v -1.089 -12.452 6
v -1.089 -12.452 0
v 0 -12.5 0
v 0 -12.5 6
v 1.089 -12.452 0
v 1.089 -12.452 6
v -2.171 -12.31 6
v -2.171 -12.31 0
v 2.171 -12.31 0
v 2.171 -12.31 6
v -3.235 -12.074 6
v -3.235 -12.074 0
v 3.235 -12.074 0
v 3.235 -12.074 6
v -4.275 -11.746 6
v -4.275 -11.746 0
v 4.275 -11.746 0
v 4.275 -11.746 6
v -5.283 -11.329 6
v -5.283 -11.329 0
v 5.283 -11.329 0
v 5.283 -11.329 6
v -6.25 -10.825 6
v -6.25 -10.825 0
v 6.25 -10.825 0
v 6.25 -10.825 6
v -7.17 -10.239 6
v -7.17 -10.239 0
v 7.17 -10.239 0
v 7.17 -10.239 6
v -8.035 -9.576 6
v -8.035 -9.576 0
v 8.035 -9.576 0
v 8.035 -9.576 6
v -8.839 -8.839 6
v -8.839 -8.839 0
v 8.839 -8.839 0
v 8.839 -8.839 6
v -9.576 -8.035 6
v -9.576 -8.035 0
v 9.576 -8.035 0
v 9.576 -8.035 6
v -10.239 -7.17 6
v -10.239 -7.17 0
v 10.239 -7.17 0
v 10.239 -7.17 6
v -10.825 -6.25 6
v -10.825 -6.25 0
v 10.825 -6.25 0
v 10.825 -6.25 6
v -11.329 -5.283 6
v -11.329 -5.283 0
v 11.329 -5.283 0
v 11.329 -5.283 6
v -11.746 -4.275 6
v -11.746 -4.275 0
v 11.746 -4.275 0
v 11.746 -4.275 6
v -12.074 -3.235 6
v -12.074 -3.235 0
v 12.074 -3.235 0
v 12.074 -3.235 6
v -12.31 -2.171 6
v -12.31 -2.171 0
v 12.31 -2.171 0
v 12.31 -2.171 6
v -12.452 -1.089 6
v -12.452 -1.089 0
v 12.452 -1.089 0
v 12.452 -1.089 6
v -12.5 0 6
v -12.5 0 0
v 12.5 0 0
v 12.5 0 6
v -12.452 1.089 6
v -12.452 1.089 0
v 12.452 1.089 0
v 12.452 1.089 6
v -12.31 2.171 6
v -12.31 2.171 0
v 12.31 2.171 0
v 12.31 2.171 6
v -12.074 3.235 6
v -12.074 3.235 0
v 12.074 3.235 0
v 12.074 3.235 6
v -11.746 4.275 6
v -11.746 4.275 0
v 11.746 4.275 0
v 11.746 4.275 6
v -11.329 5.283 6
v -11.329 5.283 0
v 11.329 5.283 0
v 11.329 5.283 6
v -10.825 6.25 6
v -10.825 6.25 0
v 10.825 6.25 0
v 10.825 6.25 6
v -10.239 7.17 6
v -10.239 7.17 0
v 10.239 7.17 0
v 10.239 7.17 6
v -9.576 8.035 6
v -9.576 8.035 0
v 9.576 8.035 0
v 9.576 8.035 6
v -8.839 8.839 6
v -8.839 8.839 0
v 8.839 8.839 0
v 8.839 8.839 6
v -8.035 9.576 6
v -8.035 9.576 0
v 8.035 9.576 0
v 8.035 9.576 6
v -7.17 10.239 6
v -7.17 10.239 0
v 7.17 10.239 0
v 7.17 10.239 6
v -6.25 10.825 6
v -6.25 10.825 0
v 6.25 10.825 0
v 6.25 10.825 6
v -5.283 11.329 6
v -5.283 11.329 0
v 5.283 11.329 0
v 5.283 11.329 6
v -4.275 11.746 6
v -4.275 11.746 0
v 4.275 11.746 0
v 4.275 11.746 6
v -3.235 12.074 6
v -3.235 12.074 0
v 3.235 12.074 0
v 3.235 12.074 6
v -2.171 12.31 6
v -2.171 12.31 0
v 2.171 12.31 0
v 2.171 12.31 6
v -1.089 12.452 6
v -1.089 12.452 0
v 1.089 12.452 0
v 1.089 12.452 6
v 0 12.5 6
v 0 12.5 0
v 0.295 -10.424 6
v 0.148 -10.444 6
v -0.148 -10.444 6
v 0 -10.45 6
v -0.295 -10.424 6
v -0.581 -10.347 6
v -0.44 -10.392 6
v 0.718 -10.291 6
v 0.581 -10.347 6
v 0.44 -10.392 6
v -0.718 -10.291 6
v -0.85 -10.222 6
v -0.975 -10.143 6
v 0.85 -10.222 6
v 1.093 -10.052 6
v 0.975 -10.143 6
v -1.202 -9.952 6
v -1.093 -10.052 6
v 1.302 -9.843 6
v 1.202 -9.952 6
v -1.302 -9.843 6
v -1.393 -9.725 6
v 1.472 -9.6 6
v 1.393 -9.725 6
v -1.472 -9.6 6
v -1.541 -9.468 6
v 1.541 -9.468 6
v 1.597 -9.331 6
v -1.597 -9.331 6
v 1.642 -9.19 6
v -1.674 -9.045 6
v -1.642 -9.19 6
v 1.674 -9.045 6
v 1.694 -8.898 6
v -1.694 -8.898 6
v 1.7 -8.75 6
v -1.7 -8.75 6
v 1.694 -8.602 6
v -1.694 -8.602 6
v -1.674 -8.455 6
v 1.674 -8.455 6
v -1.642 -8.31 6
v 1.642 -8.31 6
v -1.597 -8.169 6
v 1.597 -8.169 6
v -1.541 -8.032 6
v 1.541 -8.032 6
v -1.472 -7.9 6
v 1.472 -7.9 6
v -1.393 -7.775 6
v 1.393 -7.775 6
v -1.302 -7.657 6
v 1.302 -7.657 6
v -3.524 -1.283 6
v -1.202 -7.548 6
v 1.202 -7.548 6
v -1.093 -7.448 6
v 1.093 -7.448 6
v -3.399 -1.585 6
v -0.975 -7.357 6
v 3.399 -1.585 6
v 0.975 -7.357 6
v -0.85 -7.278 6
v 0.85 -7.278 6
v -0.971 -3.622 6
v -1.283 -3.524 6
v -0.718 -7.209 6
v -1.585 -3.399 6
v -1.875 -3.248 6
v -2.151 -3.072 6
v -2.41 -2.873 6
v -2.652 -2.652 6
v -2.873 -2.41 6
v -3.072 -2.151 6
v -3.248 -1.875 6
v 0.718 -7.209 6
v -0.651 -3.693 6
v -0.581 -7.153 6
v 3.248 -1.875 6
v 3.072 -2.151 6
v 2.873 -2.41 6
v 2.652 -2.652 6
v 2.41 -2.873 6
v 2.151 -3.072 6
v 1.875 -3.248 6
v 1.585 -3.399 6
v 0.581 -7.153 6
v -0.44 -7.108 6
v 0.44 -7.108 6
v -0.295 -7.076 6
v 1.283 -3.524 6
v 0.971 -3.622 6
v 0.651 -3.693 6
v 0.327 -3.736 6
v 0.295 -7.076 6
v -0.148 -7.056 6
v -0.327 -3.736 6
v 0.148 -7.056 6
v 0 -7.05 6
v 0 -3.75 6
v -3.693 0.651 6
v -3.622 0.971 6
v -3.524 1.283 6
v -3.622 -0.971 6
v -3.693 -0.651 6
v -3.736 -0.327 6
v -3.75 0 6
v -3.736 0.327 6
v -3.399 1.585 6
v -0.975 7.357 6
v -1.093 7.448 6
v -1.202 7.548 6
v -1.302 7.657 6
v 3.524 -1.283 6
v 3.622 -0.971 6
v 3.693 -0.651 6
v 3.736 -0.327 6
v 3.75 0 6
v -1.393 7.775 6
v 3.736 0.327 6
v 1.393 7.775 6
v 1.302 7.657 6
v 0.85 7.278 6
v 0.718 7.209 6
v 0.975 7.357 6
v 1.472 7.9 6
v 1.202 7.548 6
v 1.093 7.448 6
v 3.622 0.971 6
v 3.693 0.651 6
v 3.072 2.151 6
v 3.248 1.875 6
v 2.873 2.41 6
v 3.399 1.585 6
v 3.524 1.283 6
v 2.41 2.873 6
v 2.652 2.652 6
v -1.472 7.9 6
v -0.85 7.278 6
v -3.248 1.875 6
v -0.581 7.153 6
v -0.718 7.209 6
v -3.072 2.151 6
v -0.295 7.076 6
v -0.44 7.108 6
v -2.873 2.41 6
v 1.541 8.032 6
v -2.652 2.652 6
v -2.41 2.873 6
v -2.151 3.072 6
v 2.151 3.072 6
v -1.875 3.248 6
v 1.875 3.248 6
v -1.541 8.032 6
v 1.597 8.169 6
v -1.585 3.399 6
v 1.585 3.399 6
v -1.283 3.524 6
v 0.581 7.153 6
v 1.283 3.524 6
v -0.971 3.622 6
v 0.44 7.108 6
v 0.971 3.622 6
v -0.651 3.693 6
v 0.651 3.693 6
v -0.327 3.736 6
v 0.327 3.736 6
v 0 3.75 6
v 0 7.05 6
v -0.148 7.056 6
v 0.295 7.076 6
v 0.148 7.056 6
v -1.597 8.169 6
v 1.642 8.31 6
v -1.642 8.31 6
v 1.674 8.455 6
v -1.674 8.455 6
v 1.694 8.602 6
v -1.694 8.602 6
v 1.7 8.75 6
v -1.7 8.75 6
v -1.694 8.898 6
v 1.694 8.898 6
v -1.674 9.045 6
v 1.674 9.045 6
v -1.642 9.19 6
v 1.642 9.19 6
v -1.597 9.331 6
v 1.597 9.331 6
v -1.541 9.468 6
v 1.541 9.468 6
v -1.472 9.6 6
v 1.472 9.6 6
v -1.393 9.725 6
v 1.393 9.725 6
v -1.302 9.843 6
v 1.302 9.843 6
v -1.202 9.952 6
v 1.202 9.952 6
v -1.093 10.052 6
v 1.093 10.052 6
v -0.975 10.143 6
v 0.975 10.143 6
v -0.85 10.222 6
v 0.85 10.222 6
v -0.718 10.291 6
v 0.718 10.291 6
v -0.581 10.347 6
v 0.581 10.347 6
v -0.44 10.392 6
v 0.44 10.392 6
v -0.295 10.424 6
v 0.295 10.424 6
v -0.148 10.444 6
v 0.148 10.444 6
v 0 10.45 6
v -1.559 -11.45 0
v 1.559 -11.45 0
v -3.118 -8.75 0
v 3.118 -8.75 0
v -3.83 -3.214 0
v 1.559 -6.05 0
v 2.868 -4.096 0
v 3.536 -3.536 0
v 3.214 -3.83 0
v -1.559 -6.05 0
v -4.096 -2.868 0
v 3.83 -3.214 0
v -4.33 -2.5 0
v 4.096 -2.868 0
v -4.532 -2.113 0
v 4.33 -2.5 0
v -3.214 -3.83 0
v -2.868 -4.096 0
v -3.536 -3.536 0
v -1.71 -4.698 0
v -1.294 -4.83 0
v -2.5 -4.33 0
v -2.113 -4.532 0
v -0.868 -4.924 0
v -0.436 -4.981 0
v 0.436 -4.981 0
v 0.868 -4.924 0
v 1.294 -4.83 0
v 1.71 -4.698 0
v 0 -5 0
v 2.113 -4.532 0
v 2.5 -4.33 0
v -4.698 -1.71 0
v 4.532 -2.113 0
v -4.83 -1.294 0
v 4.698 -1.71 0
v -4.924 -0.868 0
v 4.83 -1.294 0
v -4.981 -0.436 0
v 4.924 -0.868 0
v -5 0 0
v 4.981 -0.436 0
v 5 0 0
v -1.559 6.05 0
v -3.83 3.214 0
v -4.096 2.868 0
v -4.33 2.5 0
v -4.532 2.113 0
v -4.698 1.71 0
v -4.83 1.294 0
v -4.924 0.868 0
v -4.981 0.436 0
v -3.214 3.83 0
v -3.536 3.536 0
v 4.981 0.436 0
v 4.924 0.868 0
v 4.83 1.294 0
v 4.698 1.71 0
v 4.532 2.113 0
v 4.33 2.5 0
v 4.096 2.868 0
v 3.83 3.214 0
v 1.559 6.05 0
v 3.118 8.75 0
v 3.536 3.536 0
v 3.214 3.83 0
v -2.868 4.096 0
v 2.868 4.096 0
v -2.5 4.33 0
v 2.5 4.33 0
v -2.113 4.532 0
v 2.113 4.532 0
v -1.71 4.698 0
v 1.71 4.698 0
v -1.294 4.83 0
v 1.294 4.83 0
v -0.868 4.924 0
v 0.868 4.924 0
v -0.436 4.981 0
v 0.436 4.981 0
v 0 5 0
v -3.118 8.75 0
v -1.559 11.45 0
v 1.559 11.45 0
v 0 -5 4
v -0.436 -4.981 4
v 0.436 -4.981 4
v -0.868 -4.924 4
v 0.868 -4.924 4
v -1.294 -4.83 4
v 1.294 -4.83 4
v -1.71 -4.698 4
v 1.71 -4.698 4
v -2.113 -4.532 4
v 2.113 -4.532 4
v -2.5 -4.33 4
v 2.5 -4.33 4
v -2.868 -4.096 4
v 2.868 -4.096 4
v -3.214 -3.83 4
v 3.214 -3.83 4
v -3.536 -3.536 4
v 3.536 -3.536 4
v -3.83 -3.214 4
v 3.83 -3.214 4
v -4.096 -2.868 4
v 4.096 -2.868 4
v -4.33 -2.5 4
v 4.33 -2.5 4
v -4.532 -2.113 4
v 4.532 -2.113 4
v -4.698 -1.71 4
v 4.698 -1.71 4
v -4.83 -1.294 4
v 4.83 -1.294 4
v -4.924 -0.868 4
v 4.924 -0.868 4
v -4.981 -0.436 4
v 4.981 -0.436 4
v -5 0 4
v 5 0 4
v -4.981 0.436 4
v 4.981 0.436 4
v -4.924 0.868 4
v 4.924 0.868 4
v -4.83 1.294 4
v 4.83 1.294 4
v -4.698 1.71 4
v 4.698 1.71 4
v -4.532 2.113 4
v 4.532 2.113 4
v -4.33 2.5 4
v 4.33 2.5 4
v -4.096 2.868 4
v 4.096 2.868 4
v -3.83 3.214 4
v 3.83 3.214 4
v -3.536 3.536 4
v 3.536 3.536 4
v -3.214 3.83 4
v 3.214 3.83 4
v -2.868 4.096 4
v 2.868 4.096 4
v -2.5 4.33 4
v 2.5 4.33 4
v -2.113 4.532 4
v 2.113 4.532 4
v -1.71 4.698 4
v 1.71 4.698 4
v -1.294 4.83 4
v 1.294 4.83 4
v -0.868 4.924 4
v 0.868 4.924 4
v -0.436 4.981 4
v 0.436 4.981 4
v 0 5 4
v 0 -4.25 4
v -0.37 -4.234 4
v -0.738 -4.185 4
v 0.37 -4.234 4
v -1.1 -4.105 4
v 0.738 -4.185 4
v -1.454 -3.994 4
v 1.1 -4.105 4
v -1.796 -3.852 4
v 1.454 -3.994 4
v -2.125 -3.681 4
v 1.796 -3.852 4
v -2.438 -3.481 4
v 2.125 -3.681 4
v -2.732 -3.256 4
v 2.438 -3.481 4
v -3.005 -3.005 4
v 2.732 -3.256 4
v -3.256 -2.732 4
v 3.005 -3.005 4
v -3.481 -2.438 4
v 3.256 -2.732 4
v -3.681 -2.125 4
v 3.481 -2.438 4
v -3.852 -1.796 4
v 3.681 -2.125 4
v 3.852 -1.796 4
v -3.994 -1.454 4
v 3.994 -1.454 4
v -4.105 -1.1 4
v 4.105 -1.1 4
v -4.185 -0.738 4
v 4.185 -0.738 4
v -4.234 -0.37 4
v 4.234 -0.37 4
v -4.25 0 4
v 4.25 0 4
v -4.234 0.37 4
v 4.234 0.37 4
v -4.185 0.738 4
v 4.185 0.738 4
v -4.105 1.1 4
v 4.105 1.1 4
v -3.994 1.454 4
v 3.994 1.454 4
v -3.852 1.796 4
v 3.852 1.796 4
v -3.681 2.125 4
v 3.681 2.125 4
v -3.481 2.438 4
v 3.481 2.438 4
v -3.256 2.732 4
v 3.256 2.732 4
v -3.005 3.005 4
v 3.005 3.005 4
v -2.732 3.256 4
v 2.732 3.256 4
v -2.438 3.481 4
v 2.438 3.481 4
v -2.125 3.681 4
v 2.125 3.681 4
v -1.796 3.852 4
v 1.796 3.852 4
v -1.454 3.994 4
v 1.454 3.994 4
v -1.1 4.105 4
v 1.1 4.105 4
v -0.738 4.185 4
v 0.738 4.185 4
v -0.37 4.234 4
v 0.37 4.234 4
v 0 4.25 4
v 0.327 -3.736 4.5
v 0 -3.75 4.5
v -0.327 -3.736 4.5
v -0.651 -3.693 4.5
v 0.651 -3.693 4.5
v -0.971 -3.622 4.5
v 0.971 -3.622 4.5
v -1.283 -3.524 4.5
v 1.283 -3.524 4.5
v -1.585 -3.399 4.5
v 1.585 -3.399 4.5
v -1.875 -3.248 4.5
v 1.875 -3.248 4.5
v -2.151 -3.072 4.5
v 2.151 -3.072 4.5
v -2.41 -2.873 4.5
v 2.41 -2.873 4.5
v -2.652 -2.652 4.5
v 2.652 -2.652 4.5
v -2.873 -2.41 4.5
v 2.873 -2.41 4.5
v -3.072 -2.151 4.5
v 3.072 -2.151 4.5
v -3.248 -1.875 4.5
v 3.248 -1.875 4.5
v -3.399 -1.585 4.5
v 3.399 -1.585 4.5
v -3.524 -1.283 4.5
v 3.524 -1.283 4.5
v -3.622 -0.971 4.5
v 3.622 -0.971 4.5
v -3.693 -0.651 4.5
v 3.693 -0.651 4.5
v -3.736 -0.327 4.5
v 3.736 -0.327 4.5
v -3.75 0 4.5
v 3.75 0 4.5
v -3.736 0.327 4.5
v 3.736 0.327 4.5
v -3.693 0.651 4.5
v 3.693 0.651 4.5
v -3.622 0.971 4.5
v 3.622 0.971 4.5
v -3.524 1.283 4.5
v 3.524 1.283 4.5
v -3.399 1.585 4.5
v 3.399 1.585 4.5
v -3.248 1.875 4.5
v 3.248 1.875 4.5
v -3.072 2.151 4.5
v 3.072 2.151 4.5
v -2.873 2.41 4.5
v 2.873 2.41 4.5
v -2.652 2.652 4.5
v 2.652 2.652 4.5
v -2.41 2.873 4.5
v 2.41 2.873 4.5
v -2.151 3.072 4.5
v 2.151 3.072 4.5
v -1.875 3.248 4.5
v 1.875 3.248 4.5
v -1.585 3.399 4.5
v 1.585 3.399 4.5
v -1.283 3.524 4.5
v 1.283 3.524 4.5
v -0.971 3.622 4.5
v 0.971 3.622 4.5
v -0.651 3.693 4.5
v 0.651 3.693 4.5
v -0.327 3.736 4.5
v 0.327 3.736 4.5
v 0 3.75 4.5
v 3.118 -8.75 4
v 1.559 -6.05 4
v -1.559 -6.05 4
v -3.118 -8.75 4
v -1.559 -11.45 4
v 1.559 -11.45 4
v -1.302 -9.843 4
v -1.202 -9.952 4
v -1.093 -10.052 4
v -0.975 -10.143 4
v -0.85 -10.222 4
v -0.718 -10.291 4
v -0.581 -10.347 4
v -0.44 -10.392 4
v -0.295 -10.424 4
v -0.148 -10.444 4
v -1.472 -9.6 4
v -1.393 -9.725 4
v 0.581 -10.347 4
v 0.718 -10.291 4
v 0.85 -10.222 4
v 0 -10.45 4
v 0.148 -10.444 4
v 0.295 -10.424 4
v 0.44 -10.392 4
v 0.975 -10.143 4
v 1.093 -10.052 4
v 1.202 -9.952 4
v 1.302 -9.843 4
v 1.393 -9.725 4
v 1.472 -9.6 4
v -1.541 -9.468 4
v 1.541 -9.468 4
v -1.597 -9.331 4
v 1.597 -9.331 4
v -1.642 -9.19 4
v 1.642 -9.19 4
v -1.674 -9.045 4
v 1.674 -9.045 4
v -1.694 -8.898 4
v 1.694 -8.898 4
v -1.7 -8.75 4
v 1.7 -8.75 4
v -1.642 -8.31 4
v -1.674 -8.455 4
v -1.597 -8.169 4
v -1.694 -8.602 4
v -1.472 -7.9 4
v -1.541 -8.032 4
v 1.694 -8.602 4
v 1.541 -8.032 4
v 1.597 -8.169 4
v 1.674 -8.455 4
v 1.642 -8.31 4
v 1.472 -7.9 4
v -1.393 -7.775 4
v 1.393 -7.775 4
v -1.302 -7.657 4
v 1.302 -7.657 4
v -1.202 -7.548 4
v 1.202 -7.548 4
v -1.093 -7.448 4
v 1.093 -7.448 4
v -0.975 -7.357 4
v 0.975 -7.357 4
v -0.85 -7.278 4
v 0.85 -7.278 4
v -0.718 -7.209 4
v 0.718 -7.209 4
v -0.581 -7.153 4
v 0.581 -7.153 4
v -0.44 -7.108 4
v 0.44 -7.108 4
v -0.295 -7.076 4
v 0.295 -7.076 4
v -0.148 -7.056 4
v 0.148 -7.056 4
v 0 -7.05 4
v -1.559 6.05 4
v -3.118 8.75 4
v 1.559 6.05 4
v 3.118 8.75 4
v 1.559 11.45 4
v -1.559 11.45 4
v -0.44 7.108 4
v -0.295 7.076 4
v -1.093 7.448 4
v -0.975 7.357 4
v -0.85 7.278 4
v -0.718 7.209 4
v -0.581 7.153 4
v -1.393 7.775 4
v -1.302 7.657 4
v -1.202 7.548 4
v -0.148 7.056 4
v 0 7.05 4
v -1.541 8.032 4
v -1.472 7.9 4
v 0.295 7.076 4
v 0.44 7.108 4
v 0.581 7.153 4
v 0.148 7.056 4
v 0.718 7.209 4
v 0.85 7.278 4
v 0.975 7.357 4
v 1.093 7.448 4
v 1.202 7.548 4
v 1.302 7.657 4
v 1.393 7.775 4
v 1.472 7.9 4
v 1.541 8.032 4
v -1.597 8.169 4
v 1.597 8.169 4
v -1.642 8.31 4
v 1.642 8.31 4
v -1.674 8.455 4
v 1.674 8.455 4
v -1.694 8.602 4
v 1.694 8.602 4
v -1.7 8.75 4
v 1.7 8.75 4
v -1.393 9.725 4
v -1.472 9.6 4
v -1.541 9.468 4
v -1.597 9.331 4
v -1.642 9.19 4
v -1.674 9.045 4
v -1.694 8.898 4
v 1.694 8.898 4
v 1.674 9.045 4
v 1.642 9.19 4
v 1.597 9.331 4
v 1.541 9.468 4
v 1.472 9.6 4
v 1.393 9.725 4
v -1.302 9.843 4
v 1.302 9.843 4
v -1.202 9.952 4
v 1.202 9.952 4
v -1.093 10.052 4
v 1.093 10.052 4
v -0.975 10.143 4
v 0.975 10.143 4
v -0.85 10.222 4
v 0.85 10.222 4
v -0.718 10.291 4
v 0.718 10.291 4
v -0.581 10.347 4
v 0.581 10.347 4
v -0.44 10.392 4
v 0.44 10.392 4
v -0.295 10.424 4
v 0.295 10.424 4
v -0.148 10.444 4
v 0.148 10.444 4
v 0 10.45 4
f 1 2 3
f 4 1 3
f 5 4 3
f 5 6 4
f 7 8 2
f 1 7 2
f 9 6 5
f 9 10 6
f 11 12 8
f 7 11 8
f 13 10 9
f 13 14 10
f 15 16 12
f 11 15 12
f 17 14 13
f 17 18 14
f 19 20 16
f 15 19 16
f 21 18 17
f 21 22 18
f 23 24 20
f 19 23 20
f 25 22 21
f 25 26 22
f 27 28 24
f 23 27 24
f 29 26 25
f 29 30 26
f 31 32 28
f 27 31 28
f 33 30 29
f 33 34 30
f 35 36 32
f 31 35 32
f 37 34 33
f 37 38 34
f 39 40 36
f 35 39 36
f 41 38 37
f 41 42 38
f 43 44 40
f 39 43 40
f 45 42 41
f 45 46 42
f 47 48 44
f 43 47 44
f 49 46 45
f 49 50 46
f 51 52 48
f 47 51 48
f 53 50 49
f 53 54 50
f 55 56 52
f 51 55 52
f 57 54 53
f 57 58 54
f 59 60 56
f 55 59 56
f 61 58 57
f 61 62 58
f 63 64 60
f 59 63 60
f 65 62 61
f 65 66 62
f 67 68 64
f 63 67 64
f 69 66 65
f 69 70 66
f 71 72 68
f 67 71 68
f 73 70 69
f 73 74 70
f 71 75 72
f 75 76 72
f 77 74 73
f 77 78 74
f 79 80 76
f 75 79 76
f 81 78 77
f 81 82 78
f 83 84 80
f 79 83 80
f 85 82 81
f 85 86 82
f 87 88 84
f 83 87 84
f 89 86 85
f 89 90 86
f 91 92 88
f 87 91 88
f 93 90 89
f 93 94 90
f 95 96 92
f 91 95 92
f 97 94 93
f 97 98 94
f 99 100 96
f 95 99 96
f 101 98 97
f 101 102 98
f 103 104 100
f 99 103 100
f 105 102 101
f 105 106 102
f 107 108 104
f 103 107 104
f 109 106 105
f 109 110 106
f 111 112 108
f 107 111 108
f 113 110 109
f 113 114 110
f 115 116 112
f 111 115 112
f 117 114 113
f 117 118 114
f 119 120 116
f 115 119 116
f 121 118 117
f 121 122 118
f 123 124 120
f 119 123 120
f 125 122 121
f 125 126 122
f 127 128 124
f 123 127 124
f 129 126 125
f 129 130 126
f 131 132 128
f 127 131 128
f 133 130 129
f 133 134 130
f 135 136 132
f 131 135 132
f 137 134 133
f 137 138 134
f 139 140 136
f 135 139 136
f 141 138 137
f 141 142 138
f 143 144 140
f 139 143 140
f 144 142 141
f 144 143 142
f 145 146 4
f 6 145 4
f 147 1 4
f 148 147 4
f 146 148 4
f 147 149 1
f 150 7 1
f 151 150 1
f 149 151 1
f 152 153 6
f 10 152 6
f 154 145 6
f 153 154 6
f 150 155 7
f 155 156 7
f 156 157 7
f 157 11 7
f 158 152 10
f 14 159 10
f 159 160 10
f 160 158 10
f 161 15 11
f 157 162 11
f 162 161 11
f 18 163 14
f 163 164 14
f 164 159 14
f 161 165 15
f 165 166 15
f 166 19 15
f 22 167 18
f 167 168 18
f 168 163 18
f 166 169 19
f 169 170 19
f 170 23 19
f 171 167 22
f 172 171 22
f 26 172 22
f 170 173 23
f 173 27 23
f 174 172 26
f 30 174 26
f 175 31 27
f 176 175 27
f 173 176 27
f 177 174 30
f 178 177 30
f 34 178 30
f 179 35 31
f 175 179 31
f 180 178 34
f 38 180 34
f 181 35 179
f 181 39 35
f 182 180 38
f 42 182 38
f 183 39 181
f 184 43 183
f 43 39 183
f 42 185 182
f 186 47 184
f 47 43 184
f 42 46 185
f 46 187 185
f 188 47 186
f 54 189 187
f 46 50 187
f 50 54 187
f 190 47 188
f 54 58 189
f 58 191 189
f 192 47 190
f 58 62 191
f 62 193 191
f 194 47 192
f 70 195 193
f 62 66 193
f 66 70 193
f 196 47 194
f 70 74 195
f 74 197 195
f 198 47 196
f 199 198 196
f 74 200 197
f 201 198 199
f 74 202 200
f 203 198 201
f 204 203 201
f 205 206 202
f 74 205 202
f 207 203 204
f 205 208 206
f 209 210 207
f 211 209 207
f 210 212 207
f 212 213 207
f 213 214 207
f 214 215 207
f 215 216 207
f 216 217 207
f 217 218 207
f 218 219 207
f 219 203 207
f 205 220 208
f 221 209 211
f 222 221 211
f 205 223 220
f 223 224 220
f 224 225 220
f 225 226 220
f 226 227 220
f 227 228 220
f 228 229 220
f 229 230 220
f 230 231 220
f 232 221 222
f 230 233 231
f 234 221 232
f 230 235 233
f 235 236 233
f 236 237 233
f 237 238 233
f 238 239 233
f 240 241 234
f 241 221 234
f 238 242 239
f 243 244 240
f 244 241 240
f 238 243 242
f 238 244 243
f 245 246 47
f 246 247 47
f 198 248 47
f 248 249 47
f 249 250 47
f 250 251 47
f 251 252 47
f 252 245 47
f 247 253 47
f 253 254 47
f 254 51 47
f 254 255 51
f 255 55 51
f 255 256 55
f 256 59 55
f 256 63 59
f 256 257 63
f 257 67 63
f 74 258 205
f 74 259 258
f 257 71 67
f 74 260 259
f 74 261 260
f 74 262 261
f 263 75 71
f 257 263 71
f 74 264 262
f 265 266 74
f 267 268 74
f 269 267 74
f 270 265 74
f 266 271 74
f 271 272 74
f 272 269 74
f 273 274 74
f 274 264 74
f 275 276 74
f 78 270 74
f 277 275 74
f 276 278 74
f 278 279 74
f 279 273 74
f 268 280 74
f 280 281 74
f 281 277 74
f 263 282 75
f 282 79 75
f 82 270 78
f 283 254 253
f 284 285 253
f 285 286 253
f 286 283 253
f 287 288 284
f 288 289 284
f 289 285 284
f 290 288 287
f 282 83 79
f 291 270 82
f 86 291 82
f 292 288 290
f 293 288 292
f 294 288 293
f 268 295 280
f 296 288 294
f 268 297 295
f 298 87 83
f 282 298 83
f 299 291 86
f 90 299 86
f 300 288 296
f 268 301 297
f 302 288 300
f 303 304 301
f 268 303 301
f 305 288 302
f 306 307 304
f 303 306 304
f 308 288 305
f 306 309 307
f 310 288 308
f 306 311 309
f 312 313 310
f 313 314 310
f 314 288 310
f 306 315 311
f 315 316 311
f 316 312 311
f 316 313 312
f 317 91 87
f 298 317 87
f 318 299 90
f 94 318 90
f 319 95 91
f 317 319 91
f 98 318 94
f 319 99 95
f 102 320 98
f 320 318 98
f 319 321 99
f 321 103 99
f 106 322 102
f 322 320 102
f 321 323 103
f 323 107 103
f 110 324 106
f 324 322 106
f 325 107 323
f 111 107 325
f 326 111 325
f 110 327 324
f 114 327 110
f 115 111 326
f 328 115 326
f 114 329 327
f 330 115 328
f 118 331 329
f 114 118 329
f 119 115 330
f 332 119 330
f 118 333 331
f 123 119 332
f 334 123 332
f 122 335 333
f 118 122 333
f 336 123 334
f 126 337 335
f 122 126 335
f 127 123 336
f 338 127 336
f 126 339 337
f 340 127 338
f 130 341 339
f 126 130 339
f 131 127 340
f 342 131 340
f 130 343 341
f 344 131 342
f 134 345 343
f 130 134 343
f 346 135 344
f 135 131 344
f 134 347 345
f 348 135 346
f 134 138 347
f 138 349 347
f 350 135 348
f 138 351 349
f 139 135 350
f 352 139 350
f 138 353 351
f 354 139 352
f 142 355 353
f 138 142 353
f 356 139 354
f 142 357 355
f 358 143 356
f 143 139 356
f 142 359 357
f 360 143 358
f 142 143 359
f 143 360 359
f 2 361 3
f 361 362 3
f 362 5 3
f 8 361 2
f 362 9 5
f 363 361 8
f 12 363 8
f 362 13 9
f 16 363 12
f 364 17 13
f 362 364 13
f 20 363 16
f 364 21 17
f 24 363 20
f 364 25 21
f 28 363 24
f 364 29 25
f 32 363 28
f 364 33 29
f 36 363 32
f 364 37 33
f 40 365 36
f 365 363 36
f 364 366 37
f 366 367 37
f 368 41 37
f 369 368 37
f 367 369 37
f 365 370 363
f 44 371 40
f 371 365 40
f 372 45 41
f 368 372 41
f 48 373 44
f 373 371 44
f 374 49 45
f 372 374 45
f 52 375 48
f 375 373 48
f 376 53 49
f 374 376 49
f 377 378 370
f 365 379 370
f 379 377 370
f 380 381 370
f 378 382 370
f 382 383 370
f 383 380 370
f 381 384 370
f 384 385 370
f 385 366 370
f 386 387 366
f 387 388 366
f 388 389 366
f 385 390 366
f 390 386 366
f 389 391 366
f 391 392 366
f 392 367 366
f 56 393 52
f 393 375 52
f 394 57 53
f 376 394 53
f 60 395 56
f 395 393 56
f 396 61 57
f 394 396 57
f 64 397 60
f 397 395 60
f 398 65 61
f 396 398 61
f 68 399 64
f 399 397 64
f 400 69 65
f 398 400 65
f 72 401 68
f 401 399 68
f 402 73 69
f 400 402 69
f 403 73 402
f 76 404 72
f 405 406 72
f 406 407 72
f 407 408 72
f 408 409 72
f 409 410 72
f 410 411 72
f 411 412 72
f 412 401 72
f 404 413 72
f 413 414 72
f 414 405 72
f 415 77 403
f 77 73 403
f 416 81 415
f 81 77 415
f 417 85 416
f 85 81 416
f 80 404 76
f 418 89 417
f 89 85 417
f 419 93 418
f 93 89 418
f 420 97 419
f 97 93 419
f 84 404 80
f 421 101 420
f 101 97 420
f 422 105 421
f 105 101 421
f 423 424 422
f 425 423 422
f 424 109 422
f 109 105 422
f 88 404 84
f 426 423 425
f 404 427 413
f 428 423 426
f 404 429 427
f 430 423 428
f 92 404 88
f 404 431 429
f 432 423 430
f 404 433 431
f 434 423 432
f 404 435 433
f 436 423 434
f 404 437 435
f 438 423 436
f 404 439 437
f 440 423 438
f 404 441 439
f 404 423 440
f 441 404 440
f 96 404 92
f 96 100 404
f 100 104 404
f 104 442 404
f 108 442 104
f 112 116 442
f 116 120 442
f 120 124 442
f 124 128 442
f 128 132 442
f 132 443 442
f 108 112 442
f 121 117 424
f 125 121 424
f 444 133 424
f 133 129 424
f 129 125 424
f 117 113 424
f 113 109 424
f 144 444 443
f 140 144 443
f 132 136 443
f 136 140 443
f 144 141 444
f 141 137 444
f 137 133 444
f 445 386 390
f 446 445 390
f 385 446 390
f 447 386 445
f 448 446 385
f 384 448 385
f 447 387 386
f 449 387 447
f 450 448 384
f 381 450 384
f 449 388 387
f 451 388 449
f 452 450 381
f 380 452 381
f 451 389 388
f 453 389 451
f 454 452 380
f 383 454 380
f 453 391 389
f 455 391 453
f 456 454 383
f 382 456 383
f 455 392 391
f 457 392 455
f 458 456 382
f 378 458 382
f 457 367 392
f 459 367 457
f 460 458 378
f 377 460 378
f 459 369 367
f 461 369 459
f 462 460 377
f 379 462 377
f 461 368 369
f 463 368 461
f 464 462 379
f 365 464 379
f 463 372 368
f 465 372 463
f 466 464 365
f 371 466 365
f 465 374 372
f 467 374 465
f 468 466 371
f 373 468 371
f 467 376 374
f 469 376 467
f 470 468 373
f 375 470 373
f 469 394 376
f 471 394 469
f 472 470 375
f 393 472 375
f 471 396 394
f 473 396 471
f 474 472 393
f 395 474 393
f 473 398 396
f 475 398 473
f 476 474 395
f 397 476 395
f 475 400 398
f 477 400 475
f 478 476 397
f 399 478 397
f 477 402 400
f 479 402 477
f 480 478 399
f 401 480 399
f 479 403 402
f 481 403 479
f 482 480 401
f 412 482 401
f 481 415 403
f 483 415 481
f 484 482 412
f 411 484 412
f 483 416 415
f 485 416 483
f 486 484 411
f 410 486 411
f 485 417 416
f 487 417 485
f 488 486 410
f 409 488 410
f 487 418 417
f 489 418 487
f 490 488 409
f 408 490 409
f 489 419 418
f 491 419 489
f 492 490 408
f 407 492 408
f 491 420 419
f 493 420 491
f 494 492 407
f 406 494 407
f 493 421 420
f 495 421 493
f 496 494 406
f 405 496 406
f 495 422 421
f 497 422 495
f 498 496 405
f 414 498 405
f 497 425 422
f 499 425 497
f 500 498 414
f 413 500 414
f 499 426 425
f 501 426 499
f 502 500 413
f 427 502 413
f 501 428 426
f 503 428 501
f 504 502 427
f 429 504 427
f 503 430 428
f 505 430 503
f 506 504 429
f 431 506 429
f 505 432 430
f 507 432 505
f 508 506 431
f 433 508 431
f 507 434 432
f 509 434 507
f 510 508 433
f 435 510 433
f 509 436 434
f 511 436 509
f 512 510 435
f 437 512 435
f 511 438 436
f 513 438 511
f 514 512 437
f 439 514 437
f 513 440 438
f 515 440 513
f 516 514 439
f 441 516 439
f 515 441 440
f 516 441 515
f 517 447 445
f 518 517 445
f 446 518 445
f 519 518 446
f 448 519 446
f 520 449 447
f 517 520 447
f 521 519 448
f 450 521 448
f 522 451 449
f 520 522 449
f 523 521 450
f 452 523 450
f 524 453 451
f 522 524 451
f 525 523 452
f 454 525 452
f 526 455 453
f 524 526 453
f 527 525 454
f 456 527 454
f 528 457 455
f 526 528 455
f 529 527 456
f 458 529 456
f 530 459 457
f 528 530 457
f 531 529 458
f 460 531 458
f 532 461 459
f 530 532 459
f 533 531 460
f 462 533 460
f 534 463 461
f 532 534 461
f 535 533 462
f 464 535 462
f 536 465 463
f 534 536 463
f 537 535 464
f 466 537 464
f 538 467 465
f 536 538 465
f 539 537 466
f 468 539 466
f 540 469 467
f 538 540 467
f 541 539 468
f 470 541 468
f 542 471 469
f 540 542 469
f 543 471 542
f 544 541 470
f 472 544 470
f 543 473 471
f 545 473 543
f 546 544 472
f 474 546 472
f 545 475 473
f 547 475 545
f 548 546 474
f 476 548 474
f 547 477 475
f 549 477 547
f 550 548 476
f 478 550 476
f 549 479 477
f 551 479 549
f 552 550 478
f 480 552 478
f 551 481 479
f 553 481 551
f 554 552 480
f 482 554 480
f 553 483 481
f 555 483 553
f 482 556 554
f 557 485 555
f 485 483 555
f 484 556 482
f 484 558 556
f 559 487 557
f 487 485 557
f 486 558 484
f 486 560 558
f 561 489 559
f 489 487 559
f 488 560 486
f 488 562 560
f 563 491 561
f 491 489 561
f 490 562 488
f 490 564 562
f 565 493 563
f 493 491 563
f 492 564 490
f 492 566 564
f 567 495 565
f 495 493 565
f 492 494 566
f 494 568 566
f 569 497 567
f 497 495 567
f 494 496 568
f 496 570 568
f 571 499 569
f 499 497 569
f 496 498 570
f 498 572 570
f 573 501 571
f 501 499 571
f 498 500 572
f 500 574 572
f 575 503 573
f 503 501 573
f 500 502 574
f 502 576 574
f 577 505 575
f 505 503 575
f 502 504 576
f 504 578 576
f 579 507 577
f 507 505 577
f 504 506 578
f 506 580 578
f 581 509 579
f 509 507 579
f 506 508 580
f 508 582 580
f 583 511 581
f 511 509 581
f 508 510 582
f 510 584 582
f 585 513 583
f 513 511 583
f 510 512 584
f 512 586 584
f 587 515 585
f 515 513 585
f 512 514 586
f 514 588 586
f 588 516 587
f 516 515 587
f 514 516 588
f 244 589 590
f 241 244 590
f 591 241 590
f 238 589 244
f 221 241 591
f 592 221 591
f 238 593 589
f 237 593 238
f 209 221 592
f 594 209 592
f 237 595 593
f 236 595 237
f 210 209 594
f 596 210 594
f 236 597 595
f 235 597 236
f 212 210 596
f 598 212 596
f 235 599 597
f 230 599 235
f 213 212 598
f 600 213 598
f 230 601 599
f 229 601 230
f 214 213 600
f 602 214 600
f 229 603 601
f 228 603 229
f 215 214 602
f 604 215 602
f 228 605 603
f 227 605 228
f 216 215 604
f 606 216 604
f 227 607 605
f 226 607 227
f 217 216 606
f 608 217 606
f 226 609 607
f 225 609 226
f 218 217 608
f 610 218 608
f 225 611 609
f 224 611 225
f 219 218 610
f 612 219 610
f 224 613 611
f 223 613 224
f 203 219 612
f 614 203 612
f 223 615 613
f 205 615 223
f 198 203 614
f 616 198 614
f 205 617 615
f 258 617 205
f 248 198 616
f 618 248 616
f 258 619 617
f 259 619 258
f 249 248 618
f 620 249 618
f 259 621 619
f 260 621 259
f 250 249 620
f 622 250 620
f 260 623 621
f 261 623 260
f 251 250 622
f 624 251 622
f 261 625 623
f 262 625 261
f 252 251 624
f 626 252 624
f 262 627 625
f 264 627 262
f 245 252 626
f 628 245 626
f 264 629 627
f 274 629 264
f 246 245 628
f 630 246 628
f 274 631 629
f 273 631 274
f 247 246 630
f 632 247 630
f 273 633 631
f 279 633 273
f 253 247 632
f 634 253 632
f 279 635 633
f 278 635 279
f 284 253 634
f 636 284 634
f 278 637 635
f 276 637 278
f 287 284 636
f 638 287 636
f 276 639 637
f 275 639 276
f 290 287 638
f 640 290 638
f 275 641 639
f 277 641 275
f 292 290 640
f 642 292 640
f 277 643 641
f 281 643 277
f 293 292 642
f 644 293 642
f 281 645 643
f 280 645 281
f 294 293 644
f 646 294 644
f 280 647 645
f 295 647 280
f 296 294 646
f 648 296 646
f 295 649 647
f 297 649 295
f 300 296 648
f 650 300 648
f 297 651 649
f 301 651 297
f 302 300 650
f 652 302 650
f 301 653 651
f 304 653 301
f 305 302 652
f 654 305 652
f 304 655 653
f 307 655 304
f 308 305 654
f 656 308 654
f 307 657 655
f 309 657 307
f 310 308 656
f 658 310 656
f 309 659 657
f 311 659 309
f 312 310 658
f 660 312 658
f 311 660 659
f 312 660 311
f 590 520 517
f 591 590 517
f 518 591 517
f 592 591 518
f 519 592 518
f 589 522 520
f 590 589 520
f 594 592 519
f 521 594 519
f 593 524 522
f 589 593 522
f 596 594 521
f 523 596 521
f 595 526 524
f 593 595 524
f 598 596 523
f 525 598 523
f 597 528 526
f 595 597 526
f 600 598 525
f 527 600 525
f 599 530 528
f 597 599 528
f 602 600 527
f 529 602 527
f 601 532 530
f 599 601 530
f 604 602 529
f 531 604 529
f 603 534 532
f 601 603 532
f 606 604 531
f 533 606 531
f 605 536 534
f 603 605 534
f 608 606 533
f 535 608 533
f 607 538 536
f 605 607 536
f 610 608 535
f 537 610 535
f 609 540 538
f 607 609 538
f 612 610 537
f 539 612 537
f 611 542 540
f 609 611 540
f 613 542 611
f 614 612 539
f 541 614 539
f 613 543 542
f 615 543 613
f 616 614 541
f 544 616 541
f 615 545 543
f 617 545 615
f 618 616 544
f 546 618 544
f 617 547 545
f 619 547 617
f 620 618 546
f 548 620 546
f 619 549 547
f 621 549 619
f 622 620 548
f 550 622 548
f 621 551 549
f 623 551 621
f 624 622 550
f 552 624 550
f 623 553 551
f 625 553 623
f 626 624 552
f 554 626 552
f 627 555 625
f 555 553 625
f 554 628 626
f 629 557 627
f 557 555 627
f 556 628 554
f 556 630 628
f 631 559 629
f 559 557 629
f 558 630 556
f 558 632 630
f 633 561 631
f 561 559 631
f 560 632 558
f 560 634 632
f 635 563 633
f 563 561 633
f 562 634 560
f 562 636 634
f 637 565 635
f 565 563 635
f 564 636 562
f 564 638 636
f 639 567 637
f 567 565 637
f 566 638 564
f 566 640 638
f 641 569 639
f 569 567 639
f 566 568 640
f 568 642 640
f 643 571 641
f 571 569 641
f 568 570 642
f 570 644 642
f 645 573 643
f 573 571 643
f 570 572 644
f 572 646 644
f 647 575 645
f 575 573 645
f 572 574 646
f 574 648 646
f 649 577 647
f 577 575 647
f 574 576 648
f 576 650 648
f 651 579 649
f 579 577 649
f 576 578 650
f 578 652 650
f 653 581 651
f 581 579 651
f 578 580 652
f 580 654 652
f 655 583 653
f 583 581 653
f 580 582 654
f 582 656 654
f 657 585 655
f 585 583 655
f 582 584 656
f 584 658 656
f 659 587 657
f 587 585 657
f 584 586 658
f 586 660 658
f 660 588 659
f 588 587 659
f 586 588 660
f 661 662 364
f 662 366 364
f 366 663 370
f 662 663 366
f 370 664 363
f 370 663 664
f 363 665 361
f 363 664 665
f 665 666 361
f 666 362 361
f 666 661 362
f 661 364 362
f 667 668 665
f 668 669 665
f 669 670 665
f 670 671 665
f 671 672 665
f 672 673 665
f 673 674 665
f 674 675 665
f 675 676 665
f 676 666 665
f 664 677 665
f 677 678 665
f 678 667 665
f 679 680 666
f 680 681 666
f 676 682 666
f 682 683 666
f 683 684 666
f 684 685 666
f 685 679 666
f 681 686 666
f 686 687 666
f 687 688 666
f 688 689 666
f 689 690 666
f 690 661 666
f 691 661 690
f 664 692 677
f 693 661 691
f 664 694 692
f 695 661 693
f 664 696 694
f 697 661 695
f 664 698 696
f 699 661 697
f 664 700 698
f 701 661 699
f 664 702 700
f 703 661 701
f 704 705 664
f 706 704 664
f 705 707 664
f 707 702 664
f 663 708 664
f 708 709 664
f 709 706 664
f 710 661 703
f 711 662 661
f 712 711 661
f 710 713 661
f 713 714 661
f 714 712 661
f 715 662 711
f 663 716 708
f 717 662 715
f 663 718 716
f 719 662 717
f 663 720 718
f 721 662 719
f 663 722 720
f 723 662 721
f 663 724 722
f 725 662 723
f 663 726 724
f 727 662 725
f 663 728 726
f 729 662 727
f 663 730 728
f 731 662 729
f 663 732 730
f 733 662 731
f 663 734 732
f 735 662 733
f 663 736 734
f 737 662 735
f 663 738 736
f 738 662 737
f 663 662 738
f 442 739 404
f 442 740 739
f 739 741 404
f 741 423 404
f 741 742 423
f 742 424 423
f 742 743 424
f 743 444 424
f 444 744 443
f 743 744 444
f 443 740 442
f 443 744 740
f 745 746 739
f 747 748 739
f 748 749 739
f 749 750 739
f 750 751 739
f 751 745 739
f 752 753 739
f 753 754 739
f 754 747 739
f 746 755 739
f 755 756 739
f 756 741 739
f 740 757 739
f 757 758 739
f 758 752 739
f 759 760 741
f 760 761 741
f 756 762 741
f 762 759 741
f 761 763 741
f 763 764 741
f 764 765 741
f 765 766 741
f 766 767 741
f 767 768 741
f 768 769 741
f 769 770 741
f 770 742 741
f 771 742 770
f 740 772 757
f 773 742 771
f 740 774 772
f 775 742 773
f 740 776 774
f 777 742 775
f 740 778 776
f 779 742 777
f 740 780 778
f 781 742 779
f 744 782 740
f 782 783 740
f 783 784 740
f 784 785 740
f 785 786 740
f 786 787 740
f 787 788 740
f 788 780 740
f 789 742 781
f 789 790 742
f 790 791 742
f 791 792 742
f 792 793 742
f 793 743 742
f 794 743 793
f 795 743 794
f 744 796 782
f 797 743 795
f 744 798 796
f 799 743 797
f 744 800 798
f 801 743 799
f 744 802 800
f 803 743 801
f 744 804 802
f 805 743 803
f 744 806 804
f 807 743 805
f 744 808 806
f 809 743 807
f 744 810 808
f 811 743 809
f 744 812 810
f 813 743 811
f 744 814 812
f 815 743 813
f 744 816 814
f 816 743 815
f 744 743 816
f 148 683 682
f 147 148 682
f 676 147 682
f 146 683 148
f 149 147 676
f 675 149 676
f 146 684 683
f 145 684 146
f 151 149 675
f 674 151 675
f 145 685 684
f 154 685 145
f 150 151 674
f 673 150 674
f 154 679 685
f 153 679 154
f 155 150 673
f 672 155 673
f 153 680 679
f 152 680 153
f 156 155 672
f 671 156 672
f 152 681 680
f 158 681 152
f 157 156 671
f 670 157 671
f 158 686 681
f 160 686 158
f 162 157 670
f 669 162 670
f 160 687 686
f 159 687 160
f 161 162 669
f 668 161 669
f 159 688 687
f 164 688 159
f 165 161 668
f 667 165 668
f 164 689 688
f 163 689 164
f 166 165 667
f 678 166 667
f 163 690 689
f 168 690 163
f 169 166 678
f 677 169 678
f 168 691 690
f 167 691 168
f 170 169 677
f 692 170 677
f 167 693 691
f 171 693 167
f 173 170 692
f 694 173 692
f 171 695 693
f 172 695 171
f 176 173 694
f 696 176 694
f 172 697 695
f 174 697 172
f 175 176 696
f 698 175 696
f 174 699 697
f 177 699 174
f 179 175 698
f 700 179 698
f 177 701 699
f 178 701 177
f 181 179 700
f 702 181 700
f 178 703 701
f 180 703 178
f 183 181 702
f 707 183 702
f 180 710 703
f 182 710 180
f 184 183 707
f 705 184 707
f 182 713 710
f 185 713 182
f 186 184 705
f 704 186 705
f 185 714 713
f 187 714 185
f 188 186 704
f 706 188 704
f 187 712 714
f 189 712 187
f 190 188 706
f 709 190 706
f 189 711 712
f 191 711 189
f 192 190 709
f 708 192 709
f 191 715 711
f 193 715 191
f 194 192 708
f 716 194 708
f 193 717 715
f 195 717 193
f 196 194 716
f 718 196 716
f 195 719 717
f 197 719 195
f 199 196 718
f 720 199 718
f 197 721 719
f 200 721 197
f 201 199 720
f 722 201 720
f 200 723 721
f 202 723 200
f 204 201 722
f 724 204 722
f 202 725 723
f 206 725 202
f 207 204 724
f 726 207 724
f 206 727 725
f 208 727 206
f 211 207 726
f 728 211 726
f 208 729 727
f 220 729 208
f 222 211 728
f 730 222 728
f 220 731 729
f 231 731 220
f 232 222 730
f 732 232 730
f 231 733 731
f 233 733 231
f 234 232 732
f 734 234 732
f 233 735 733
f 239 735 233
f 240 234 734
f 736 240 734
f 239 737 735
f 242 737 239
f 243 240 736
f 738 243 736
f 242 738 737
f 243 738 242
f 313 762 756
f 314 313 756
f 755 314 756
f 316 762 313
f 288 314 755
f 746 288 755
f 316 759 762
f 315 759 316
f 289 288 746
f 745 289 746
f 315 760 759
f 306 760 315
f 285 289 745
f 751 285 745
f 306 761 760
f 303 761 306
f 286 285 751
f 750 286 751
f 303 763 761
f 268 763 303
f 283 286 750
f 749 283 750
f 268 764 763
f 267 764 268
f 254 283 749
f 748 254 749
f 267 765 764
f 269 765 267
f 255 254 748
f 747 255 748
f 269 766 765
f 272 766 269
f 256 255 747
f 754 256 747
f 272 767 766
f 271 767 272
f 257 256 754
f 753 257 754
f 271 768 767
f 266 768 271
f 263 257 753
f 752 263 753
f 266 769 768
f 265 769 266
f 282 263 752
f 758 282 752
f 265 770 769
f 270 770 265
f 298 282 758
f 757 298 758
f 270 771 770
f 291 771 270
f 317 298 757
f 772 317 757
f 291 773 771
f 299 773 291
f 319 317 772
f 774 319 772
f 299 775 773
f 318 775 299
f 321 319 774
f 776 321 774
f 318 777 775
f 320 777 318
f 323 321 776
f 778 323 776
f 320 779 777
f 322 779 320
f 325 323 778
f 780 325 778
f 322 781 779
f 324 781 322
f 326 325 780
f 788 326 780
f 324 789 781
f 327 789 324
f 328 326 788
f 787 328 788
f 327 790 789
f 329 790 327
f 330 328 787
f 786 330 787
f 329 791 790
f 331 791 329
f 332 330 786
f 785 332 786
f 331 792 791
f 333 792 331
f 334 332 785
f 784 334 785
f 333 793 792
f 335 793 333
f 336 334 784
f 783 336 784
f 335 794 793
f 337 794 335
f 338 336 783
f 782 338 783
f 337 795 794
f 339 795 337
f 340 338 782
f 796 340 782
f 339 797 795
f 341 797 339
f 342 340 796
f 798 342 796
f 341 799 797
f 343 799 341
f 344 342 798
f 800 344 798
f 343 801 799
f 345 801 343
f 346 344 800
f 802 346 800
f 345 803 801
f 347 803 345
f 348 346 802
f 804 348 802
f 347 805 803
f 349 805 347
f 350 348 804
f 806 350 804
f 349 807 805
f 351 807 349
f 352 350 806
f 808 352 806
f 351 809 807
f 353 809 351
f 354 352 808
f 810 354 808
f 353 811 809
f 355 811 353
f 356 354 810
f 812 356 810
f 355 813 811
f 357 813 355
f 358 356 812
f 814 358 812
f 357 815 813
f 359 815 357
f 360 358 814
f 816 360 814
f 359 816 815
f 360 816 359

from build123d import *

# Parameters (mm, degrees)
ESQUISSE1_RX            = 12.5
ESQUISSE1_RY            = 12.5
BOSS_EXTRU_1_DEPTH      = 6
ESQUISSE2_R             = 5
ENL_V_MAT_EXTRU_1_DEPTH = 4
ENL_V_MAT_EXTRU_2_REACH = 20.125
ESQUISSE3_R             = 3.75
CHANFREIN1_SIZE         = 0.5
ENL_V_MAT_EXTRU_3_DEPTH = 4
ENL_V_MAT_EXTRU_4_REACH = 20.125
ESQUISSE6_R             = 1.7


with BuildPart() as part:
    # Esquisse1 → Boss.-Extru.1 (new body)
    with BuildSketch(Plane.XY):
        with Locations((0, 0)):
            Ellipse(ESQUISSE1_RX, ESQUISSE1_RY)
    extrude(amount=BOSS_EXTRU_1_DEPTH)

    # Esquisse2 → Enlèv. mat.-Extru.1 (cut)
    with BuildSketch(Plane(origin=(0, 0, 0), x_dir=(-1, 0, 0), z_dir=(0, 0, -1))):
        Circle(ESQUISSE2_R)
    extrude(amount=-ENL_V_MAT_EXTRU_1_DEPTH, mode=Mode.SUBTRACT)

    # Esquisse3 → Enlèv. mat.-Extru.2 (cut, up to next)
    with BuildSketch(Plane(origin=(0, 0, 4), x_dir=(-1, 0, 0), z_dir=(0, 0, -1)), mode=Mode.PRIVATE) as enl_v_mat_extru_2_sk1:
        Circle(ESQUISSE3_R)
    enl_v_mat_extru_2_tool1 = extrude(enl_v_mat_extru_2_sk1.sketch, amount=-ENL_V_MAT_EXTRU_2_REACH, mode=Mode.PRIVATE) & part.part
    add(enl_v_mat_extru_2_tool1.solids().sort_by_distance((0, 0, 4))[0], mode=Mode.SUBTRACT)

    # Chanfrein1
    chanfrein1_edges = [part.edges().sort_by_distance(p)[0] for p in [
        (3.75, 0, 4),
    ]]
    chamfer(chanfrein1_edges, length=CHANFREIN1_SIZE)

    # Esquisse5 → Enlèv. mat.-Extru.3 (cut)
    with BuildSketch(Plane(origin=(0, 0, 0), x_dir=(-1, 0, 0), z_dir=(0, 0, -1))):
        Polygon((-3.117691454, -8.75), (-1.558845727, -11.45), (1.558845727, -11.45), (3.117691454, -8.75), (1.558845727, -6.05), (-1.558845727, -6.05), align=None)
        Polygon((3.117691454, 8.75), (1.558845727, 11.45), (-1.558845727, 11.45), (-3.117691454, 8.75), (-1.558845727, 6.05), (1.558845727, 6.05), align=None)
    extrude(amount=-ENL_V_MAT_EXTRU_3_DEPTH, mode=Mode.SUBTRACT)

    # Esquisse6 → Enlèv. mat.-Extru.4 (cut, up to next)
    with BuildSketch(Plane(origin=(0, 0, 4), x_dir=(-1, 0, 0), z_dir=(0, 0, -1)), mode=Mode.PRIVATE) as enl_v_mat_extru_4_sk1:
        with Locations((0, 8.75)):
            Circle(ESQUISSE6_R)
    enl_v_mat_extru_4_tool1 = extrude(enl_v_mat_extru_4_sk1.sketch, amount=-ENL_V_MAT_EXTRU_4_REACH, mode=Mode.PRIVATE) & part.part
    # Esquisse6 → Enlèv. mat.-Extru.4 (cut, up to next)
    with BuildSketch(Plane(origin=(0, 0, 4), x_dir=(-1, 0, 0), z_dir=(0, 0, -1)), mode=Mode.PRIVATE) as enl_v_mat_extru_4_sk2:
        with Locations((0, -8.75)):
            Circle(ESQUISSE6_R)
    enl_v_mat_extru_4_tool2 = extrude(enl_v_mat_extru_4_sk2.sketch, amount=-ENL_V_MAT_EXTRU_4_REACH, mode=Mode.PRIVATE) & part.part
    add(enl_v_mat_extru_4_tool1.solids().sort_by_distance((0, 8.75, 4))[0], mode=Mode.SUBTRACT)
    add(enl_v_mat_extru_4_tool2.solids().sort_by_distance((0, -8.75, 4))[0], mode=Mode.SUBTRACT)


solid = part.part
